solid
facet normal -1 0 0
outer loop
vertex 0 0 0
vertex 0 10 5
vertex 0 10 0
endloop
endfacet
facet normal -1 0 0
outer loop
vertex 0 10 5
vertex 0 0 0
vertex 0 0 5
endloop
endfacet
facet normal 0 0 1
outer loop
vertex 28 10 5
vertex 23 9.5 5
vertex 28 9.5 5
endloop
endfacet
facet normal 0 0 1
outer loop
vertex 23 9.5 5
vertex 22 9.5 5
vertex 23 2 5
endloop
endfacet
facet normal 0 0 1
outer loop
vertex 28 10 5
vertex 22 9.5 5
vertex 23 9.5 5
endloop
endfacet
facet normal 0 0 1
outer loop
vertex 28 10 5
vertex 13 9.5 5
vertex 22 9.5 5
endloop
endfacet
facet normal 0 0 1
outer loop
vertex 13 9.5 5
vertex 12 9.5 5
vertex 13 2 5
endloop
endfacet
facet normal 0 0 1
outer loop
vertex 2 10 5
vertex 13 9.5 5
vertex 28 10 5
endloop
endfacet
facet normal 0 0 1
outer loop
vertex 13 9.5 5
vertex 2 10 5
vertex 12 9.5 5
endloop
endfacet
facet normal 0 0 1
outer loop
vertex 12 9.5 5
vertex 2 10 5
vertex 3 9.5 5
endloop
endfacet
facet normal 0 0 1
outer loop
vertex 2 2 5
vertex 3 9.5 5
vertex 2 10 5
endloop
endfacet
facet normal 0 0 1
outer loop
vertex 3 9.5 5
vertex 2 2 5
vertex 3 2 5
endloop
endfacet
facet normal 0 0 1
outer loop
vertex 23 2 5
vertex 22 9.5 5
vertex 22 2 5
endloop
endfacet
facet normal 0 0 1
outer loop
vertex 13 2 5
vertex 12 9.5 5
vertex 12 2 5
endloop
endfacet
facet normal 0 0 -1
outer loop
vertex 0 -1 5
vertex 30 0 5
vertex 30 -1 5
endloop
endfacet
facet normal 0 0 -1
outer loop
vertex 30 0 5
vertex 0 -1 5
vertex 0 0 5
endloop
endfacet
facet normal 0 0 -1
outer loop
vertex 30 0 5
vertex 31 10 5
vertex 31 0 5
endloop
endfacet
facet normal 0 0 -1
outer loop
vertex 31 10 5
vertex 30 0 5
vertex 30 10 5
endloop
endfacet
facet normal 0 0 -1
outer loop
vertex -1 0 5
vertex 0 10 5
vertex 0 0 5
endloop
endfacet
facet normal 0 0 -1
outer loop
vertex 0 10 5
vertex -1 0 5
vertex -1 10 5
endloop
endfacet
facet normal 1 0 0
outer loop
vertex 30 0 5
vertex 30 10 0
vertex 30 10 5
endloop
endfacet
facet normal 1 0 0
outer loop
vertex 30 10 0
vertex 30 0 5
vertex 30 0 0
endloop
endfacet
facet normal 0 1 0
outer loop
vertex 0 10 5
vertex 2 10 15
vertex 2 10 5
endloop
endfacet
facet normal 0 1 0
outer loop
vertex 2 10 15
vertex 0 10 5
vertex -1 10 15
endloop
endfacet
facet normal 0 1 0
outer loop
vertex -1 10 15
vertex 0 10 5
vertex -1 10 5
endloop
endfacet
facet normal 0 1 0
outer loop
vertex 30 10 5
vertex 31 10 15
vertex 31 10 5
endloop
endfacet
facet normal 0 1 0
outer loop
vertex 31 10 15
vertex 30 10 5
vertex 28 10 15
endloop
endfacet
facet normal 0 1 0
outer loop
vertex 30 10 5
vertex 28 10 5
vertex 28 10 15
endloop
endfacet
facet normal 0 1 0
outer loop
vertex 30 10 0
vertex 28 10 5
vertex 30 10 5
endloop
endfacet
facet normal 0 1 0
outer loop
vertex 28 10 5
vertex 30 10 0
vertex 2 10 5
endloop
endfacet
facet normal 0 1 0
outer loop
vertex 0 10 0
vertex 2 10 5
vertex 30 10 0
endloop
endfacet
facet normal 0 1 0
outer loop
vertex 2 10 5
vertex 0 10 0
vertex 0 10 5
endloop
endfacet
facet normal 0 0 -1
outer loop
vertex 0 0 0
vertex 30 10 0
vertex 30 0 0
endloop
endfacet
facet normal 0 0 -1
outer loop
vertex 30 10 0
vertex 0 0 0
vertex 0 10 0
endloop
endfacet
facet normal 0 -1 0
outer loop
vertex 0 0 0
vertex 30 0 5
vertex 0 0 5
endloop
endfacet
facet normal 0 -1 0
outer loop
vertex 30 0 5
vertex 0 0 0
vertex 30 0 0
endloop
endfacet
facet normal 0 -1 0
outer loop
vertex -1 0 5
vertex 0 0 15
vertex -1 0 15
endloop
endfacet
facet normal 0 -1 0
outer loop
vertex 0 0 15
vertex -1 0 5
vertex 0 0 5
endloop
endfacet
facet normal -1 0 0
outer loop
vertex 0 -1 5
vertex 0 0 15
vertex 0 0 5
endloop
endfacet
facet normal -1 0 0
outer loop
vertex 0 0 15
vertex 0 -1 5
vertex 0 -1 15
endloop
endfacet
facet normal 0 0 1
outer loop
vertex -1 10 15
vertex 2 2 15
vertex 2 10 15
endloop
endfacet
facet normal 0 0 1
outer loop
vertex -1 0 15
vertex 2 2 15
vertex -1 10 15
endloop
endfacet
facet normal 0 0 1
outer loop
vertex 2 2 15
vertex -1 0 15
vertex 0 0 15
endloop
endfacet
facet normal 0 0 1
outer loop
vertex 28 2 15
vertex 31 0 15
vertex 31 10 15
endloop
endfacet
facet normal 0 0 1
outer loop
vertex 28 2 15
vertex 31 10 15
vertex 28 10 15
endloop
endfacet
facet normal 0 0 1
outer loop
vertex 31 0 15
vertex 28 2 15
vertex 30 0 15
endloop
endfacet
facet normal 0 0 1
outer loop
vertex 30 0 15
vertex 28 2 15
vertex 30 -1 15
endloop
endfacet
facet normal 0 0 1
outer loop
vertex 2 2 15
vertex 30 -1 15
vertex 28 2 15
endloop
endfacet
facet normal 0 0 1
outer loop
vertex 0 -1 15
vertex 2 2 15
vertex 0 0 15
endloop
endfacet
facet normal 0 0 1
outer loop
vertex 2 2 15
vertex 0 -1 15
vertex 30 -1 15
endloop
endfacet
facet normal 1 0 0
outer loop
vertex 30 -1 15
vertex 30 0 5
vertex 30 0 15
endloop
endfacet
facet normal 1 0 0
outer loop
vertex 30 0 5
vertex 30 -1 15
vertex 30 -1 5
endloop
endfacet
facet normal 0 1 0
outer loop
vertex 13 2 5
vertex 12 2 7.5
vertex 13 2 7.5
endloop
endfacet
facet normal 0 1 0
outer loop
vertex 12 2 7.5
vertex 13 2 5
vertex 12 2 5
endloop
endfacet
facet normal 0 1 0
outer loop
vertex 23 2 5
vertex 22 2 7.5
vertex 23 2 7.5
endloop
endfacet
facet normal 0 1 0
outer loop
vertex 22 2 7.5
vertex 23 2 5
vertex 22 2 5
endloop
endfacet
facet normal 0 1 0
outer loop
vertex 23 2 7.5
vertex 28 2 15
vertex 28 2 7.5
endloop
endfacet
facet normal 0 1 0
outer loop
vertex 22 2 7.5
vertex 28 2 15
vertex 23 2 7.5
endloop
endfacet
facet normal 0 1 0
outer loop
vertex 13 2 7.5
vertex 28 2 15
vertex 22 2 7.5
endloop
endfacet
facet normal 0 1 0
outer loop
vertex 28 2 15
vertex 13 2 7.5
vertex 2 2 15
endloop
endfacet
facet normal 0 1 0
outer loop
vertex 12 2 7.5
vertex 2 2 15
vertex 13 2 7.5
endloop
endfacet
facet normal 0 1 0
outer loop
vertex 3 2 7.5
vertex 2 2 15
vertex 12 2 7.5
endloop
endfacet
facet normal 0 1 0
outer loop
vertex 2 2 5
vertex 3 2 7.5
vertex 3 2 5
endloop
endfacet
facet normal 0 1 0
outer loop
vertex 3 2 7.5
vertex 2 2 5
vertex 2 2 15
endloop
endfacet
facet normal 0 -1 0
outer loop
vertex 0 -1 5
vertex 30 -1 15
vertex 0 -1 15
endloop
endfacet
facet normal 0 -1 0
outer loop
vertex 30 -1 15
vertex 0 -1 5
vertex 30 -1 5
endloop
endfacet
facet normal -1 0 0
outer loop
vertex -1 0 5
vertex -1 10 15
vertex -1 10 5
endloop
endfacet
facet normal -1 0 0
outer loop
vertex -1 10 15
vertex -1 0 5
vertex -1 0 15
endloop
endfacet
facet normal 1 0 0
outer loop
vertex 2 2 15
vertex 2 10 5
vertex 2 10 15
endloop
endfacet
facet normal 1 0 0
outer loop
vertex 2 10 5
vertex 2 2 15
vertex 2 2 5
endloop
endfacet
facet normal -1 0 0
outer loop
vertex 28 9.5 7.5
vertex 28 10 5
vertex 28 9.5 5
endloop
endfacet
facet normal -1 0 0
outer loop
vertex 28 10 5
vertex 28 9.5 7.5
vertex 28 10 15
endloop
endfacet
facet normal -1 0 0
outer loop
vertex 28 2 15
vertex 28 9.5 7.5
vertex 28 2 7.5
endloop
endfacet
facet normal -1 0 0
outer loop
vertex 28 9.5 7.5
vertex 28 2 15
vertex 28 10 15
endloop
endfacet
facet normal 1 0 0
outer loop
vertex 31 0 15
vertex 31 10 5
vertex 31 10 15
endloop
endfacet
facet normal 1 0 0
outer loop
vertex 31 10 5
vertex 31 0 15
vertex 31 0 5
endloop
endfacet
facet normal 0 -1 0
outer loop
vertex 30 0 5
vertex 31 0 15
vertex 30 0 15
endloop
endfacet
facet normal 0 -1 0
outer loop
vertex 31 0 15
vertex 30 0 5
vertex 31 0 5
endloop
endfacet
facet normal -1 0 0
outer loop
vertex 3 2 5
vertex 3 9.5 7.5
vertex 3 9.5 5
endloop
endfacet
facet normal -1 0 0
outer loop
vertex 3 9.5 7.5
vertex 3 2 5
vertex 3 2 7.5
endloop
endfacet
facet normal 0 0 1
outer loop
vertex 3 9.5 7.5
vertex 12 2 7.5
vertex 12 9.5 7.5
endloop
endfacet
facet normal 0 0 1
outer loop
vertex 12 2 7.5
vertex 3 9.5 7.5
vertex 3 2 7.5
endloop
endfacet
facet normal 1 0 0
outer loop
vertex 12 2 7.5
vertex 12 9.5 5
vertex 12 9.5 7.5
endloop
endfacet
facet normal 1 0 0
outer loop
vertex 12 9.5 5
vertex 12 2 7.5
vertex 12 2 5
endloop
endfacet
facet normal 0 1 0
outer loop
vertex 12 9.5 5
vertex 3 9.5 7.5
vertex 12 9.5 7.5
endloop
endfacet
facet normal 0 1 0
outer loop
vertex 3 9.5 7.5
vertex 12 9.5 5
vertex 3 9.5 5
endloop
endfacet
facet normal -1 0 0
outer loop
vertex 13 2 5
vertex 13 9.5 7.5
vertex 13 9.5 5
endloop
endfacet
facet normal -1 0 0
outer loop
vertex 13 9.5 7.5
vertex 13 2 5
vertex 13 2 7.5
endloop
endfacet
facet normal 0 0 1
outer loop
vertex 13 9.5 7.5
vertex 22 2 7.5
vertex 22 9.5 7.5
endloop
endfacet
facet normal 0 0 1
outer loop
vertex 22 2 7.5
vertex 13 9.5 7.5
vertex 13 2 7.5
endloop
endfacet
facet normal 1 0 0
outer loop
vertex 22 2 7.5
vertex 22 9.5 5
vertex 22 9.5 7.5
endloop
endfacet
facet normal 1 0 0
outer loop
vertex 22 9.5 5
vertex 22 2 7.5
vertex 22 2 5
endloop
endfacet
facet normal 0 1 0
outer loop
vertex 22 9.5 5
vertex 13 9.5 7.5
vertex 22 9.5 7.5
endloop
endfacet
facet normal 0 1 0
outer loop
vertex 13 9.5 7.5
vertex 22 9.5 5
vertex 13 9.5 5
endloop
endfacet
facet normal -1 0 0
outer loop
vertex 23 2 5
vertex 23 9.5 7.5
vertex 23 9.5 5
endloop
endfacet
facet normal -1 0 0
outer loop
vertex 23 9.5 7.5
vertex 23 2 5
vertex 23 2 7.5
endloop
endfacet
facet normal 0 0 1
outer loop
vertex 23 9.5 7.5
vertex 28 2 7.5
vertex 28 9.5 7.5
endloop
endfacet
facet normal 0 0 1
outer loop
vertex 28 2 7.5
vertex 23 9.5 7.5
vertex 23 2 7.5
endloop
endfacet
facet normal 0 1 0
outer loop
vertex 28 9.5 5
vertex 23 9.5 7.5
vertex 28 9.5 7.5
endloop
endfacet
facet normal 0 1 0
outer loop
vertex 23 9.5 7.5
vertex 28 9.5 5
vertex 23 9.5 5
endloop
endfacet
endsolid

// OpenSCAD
// Couch base
cube([30, 10, 5]);

// Couch backrest
translate([0, -1, 5])
cube([30, 3, 10]);

// Couch armrest left
translate([-1, 0, 5])
cube([3, 10, 10]);

// Couch armrest right
translate([28, 0, 5])
cube([3, 10, 10]);

// Couch cushions
translate([3, .5, 5])
cube([9, 9, 2.5]);
translate([13, .5, 5])
cube([9, 9, 2.5]);
translate([23, .5, 5])
cube([5, 9, 2.5]);
